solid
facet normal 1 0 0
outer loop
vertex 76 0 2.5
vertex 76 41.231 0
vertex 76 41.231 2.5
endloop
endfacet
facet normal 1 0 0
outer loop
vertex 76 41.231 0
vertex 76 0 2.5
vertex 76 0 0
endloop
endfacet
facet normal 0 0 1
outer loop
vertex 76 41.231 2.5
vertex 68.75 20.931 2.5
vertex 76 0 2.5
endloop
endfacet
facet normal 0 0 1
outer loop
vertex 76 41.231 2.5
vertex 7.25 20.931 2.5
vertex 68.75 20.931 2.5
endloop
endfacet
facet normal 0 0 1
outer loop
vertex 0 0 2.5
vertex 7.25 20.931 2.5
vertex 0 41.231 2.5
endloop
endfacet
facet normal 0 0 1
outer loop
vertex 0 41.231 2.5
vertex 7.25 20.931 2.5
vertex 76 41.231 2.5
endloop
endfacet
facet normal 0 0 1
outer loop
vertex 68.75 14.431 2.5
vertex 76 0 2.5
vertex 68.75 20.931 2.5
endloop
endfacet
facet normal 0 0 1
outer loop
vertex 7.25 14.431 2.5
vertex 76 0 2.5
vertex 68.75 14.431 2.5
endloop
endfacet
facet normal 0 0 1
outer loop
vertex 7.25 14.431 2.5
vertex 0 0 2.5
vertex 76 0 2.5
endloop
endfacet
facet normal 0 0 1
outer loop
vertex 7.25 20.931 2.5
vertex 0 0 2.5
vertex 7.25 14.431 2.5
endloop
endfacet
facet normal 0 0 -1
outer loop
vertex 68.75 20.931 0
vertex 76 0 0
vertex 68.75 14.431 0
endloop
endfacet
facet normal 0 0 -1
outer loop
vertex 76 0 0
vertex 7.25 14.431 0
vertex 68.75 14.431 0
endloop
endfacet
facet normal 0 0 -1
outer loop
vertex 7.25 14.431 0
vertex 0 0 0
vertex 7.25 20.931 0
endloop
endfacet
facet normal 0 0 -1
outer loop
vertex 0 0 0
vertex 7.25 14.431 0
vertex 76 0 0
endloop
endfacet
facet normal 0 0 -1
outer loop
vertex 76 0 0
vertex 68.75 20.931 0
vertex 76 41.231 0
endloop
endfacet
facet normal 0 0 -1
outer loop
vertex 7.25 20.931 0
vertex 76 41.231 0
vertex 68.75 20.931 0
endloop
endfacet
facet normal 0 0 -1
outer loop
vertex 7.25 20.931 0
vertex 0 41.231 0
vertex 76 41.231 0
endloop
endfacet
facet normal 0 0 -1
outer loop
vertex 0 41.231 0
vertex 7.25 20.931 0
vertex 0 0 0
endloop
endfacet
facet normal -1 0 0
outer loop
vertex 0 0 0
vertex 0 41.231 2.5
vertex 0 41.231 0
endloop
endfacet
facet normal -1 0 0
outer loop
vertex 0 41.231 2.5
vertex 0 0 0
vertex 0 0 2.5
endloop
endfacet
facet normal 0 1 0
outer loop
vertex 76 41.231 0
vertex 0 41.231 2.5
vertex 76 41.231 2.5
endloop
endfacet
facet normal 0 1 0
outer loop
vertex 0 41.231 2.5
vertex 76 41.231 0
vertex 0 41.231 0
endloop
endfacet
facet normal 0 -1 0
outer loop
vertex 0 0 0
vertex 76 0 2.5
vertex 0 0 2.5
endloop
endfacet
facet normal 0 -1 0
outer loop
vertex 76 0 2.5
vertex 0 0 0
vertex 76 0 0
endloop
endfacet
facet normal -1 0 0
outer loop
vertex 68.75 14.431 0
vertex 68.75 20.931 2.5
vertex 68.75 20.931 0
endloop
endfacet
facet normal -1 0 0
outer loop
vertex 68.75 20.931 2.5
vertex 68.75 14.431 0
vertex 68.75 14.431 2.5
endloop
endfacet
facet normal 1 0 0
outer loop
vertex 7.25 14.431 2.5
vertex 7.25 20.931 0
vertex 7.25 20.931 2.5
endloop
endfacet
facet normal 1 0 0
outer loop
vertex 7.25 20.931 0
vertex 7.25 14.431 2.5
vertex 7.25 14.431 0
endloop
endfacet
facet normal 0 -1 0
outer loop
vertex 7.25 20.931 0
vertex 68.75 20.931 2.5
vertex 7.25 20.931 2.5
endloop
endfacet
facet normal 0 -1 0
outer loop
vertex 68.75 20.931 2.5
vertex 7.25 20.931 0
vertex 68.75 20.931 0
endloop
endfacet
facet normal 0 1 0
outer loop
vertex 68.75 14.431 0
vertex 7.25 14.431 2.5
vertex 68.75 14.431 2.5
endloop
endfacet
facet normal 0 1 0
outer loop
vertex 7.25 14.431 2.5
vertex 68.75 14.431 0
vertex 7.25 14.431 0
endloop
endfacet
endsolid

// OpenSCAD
B=76; K=38; I=10; J=26; M=2.5;
G=61.5; Hs=6.5; Gx=(B-G)/2;
ang=atan2(J-I,K); Lp=sqrt(K*K+(J-I)*(J-I)); // 斜面真實長度
Gy=Lp*0.35;
// 放平：板子躺在 XY 平面，Y 方向是原本的斜面方向（低端→高端）
difference(){
  cube([B, Lp, M]);
  translate([Gx, Gy, -1]) cube([G, Hs, M+2]);
}
echo(slope_len=Lp, angle=ang);
